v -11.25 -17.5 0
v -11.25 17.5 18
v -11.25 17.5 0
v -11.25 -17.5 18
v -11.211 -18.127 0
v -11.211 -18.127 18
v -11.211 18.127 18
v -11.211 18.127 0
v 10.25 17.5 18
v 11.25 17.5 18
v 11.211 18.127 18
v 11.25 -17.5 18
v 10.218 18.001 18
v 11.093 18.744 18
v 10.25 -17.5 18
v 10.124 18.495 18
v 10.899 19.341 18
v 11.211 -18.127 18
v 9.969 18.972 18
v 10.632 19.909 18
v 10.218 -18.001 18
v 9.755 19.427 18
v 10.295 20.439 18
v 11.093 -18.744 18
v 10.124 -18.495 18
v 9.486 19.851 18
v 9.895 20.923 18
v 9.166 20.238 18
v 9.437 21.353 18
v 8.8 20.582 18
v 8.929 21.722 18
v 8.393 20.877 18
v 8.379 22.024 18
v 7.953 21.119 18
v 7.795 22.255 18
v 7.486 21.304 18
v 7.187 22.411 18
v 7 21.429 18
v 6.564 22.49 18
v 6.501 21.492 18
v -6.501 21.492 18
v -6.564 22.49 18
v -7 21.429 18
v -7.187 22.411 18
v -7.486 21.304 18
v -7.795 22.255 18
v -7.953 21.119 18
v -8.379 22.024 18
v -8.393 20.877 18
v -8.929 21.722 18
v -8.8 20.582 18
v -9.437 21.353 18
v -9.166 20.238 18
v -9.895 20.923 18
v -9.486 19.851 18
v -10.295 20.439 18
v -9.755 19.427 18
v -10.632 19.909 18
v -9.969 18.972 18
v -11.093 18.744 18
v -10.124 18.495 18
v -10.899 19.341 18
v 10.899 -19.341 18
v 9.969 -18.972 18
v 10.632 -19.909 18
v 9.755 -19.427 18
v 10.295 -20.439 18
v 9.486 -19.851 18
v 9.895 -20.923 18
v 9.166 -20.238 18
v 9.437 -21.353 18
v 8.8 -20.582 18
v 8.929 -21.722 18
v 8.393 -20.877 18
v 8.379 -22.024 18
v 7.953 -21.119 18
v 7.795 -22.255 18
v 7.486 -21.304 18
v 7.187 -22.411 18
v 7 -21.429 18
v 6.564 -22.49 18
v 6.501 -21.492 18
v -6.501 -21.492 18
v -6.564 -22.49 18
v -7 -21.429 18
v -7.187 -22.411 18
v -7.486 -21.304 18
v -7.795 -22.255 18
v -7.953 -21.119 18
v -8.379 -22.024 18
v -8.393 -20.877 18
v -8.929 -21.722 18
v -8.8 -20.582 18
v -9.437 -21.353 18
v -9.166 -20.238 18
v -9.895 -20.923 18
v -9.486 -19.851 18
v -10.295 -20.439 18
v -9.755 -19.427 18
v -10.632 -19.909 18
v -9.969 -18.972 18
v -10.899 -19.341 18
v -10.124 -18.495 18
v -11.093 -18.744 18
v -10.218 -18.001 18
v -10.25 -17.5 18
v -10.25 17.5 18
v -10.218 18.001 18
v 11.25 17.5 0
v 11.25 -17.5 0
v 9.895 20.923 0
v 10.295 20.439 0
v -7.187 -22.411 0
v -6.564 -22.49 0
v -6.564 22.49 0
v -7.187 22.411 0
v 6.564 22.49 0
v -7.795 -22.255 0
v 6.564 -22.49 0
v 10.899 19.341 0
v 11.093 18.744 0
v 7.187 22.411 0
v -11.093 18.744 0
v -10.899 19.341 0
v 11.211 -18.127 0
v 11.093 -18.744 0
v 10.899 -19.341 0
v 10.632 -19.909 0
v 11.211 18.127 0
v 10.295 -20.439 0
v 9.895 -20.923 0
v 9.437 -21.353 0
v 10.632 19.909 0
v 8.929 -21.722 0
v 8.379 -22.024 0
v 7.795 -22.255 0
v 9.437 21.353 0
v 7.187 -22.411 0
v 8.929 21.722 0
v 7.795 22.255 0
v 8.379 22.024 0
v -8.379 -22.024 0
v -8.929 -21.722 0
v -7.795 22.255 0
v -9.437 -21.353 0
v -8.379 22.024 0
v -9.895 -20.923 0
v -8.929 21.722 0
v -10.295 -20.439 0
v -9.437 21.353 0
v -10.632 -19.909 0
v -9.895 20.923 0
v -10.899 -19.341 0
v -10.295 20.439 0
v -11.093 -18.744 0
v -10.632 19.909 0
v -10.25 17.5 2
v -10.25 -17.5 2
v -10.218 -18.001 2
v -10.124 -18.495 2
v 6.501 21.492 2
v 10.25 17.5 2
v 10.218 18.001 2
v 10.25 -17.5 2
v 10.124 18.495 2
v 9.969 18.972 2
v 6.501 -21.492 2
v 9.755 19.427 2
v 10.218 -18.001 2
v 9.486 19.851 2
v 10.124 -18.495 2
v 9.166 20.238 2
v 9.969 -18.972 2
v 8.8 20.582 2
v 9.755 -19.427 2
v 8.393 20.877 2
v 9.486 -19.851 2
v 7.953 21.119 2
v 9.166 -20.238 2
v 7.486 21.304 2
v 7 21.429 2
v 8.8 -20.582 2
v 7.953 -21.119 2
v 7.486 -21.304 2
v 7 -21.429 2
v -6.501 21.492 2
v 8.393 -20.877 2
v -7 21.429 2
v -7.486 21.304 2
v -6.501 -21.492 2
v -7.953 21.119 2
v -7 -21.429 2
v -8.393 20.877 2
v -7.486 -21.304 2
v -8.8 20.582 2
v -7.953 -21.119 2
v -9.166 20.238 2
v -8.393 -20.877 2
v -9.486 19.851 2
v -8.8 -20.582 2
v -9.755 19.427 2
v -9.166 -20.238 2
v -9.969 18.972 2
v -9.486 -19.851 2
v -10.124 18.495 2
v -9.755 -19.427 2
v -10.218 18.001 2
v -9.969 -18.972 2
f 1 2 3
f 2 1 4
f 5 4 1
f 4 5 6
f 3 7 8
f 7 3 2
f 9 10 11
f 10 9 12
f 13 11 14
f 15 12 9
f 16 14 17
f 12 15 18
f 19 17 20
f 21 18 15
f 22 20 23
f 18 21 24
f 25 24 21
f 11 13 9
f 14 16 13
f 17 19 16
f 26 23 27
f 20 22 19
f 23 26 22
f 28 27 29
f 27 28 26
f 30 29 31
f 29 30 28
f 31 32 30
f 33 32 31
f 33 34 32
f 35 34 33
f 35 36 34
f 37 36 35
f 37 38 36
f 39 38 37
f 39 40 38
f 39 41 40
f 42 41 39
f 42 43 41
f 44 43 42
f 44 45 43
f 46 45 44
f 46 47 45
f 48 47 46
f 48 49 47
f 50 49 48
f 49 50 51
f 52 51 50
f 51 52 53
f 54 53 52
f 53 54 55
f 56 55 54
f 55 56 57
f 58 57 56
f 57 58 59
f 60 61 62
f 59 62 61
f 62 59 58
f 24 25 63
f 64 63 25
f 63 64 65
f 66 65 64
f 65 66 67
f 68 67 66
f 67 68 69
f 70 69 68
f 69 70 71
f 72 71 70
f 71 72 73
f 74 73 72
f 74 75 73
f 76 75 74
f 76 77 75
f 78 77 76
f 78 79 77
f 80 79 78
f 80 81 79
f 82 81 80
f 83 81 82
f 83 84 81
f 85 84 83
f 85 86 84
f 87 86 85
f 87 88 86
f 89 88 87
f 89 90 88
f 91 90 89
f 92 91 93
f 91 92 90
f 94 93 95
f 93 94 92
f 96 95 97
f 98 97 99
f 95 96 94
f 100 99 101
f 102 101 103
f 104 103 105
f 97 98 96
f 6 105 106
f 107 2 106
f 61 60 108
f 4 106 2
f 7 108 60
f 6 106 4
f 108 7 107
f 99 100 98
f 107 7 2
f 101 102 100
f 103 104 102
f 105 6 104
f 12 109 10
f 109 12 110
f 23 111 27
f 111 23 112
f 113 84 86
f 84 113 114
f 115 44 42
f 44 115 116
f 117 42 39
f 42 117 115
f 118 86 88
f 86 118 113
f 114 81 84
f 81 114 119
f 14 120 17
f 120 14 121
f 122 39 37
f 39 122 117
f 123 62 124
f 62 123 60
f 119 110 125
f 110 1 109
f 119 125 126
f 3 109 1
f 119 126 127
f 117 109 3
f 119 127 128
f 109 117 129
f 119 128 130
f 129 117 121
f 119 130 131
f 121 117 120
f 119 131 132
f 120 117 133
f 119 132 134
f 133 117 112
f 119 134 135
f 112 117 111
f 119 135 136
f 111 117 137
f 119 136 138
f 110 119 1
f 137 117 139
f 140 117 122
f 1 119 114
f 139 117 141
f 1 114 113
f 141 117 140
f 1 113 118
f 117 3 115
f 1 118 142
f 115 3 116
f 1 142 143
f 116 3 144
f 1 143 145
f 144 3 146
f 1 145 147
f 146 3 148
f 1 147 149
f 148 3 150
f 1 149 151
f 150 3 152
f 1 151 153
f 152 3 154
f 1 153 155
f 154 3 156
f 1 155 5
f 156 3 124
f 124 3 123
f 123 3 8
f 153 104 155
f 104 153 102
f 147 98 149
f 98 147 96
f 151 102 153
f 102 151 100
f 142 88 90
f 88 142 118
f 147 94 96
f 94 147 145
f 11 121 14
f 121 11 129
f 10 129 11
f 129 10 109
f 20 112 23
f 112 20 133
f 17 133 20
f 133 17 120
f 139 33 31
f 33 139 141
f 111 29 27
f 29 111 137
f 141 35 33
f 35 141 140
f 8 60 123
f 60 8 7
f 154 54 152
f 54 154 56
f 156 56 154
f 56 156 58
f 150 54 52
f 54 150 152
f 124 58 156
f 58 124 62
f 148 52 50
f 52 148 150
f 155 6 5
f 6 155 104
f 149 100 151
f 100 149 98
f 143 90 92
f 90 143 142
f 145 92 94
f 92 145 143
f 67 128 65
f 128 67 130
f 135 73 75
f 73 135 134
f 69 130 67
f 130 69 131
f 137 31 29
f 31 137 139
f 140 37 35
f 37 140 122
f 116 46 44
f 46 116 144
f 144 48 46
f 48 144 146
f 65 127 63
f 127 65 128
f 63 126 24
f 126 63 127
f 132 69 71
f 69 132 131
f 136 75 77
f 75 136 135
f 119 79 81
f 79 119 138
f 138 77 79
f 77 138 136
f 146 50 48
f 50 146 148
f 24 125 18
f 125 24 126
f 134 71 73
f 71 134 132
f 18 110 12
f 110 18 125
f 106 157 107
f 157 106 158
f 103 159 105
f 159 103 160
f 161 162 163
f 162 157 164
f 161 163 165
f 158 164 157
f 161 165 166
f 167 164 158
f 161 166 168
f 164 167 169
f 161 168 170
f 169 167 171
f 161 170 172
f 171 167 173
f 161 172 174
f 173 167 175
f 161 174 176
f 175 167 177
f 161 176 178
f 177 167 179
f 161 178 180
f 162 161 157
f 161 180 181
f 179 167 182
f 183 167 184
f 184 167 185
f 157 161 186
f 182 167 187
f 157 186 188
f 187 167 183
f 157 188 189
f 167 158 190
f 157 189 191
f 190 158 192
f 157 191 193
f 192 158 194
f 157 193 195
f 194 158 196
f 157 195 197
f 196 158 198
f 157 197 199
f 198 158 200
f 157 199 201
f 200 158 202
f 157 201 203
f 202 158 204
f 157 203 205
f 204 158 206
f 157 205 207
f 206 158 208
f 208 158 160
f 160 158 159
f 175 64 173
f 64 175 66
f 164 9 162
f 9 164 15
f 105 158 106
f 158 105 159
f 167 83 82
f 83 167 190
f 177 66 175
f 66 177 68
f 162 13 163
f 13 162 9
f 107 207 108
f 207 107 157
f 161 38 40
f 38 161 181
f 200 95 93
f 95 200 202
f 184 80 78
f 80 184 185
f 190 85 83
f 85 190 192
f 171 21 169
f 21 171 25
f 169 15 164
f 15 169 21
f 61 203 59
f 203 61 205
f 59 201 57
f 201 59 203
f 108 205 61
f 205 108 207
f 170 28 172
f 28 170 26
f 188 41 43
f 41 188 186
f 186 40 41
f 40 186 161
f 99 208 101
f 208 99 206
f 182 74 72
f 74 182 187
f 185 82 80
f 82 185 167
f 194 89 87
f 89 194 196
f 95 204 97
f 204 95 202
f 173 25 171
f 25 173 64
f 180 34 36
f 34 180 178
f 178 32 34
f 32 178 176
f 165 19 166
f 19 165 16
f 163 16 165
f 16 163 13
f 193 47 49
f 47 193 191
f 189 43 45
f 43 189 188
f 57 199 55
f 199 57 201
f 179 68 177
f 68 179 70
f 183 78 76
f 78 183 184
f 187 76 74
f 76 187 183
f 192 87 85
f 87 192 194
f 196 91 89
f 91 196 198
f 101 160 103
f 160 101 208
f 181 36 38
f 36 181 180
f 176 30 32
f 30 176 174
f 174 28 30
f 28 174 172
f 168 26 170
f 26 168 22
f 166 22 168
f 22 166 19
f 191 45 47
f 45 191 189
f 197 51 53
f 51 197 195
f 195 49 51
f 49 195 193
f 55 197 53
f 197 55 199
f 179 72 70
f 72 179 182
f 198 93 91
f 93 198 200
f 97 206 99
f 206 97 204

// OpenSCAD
$fn = 50;


difference() {
	union() {
		hull() {
			translate(v = [-6.2500000000, 17.5000000000, 0]) {
				cylinder(h = 18, r = 5);
			}
			translate(v = [6.2500000000, 17.5000000000, 0]) {
				cylinder(h = 18, r = 5);
			}
			translate(v = [-6.2500000000, -17.5000000000, 0]) {
				cylinder(h = 18, r = 5);
			}
			translate(v = [6.2500000000, -17.5000000000, 0]) {
				cylinder(h = 18, r = 5);
			}
		}
	}
	union() {
		translate(v = [0, 0, 2]) {
			hull() {
				translate(v = [-6.2500000000, 17.5000000000, 0]) {
					cylinder(h = 16, r = 4);
				}
				translate(v = [6.2500000000, 17.5000000000, 0]) {
					cylinder(h = 16, r = 4);
				}
				translate(v = [-6.2500000000, -17.5000000000, 0]) {
					cylinder(h = 16, r = 4);
				}
				translate(v = [6.2500000000, -17.5000000000, 0]) {
					cylinder(h = 16, r = 4);
				}
			}
		}
	}
}
